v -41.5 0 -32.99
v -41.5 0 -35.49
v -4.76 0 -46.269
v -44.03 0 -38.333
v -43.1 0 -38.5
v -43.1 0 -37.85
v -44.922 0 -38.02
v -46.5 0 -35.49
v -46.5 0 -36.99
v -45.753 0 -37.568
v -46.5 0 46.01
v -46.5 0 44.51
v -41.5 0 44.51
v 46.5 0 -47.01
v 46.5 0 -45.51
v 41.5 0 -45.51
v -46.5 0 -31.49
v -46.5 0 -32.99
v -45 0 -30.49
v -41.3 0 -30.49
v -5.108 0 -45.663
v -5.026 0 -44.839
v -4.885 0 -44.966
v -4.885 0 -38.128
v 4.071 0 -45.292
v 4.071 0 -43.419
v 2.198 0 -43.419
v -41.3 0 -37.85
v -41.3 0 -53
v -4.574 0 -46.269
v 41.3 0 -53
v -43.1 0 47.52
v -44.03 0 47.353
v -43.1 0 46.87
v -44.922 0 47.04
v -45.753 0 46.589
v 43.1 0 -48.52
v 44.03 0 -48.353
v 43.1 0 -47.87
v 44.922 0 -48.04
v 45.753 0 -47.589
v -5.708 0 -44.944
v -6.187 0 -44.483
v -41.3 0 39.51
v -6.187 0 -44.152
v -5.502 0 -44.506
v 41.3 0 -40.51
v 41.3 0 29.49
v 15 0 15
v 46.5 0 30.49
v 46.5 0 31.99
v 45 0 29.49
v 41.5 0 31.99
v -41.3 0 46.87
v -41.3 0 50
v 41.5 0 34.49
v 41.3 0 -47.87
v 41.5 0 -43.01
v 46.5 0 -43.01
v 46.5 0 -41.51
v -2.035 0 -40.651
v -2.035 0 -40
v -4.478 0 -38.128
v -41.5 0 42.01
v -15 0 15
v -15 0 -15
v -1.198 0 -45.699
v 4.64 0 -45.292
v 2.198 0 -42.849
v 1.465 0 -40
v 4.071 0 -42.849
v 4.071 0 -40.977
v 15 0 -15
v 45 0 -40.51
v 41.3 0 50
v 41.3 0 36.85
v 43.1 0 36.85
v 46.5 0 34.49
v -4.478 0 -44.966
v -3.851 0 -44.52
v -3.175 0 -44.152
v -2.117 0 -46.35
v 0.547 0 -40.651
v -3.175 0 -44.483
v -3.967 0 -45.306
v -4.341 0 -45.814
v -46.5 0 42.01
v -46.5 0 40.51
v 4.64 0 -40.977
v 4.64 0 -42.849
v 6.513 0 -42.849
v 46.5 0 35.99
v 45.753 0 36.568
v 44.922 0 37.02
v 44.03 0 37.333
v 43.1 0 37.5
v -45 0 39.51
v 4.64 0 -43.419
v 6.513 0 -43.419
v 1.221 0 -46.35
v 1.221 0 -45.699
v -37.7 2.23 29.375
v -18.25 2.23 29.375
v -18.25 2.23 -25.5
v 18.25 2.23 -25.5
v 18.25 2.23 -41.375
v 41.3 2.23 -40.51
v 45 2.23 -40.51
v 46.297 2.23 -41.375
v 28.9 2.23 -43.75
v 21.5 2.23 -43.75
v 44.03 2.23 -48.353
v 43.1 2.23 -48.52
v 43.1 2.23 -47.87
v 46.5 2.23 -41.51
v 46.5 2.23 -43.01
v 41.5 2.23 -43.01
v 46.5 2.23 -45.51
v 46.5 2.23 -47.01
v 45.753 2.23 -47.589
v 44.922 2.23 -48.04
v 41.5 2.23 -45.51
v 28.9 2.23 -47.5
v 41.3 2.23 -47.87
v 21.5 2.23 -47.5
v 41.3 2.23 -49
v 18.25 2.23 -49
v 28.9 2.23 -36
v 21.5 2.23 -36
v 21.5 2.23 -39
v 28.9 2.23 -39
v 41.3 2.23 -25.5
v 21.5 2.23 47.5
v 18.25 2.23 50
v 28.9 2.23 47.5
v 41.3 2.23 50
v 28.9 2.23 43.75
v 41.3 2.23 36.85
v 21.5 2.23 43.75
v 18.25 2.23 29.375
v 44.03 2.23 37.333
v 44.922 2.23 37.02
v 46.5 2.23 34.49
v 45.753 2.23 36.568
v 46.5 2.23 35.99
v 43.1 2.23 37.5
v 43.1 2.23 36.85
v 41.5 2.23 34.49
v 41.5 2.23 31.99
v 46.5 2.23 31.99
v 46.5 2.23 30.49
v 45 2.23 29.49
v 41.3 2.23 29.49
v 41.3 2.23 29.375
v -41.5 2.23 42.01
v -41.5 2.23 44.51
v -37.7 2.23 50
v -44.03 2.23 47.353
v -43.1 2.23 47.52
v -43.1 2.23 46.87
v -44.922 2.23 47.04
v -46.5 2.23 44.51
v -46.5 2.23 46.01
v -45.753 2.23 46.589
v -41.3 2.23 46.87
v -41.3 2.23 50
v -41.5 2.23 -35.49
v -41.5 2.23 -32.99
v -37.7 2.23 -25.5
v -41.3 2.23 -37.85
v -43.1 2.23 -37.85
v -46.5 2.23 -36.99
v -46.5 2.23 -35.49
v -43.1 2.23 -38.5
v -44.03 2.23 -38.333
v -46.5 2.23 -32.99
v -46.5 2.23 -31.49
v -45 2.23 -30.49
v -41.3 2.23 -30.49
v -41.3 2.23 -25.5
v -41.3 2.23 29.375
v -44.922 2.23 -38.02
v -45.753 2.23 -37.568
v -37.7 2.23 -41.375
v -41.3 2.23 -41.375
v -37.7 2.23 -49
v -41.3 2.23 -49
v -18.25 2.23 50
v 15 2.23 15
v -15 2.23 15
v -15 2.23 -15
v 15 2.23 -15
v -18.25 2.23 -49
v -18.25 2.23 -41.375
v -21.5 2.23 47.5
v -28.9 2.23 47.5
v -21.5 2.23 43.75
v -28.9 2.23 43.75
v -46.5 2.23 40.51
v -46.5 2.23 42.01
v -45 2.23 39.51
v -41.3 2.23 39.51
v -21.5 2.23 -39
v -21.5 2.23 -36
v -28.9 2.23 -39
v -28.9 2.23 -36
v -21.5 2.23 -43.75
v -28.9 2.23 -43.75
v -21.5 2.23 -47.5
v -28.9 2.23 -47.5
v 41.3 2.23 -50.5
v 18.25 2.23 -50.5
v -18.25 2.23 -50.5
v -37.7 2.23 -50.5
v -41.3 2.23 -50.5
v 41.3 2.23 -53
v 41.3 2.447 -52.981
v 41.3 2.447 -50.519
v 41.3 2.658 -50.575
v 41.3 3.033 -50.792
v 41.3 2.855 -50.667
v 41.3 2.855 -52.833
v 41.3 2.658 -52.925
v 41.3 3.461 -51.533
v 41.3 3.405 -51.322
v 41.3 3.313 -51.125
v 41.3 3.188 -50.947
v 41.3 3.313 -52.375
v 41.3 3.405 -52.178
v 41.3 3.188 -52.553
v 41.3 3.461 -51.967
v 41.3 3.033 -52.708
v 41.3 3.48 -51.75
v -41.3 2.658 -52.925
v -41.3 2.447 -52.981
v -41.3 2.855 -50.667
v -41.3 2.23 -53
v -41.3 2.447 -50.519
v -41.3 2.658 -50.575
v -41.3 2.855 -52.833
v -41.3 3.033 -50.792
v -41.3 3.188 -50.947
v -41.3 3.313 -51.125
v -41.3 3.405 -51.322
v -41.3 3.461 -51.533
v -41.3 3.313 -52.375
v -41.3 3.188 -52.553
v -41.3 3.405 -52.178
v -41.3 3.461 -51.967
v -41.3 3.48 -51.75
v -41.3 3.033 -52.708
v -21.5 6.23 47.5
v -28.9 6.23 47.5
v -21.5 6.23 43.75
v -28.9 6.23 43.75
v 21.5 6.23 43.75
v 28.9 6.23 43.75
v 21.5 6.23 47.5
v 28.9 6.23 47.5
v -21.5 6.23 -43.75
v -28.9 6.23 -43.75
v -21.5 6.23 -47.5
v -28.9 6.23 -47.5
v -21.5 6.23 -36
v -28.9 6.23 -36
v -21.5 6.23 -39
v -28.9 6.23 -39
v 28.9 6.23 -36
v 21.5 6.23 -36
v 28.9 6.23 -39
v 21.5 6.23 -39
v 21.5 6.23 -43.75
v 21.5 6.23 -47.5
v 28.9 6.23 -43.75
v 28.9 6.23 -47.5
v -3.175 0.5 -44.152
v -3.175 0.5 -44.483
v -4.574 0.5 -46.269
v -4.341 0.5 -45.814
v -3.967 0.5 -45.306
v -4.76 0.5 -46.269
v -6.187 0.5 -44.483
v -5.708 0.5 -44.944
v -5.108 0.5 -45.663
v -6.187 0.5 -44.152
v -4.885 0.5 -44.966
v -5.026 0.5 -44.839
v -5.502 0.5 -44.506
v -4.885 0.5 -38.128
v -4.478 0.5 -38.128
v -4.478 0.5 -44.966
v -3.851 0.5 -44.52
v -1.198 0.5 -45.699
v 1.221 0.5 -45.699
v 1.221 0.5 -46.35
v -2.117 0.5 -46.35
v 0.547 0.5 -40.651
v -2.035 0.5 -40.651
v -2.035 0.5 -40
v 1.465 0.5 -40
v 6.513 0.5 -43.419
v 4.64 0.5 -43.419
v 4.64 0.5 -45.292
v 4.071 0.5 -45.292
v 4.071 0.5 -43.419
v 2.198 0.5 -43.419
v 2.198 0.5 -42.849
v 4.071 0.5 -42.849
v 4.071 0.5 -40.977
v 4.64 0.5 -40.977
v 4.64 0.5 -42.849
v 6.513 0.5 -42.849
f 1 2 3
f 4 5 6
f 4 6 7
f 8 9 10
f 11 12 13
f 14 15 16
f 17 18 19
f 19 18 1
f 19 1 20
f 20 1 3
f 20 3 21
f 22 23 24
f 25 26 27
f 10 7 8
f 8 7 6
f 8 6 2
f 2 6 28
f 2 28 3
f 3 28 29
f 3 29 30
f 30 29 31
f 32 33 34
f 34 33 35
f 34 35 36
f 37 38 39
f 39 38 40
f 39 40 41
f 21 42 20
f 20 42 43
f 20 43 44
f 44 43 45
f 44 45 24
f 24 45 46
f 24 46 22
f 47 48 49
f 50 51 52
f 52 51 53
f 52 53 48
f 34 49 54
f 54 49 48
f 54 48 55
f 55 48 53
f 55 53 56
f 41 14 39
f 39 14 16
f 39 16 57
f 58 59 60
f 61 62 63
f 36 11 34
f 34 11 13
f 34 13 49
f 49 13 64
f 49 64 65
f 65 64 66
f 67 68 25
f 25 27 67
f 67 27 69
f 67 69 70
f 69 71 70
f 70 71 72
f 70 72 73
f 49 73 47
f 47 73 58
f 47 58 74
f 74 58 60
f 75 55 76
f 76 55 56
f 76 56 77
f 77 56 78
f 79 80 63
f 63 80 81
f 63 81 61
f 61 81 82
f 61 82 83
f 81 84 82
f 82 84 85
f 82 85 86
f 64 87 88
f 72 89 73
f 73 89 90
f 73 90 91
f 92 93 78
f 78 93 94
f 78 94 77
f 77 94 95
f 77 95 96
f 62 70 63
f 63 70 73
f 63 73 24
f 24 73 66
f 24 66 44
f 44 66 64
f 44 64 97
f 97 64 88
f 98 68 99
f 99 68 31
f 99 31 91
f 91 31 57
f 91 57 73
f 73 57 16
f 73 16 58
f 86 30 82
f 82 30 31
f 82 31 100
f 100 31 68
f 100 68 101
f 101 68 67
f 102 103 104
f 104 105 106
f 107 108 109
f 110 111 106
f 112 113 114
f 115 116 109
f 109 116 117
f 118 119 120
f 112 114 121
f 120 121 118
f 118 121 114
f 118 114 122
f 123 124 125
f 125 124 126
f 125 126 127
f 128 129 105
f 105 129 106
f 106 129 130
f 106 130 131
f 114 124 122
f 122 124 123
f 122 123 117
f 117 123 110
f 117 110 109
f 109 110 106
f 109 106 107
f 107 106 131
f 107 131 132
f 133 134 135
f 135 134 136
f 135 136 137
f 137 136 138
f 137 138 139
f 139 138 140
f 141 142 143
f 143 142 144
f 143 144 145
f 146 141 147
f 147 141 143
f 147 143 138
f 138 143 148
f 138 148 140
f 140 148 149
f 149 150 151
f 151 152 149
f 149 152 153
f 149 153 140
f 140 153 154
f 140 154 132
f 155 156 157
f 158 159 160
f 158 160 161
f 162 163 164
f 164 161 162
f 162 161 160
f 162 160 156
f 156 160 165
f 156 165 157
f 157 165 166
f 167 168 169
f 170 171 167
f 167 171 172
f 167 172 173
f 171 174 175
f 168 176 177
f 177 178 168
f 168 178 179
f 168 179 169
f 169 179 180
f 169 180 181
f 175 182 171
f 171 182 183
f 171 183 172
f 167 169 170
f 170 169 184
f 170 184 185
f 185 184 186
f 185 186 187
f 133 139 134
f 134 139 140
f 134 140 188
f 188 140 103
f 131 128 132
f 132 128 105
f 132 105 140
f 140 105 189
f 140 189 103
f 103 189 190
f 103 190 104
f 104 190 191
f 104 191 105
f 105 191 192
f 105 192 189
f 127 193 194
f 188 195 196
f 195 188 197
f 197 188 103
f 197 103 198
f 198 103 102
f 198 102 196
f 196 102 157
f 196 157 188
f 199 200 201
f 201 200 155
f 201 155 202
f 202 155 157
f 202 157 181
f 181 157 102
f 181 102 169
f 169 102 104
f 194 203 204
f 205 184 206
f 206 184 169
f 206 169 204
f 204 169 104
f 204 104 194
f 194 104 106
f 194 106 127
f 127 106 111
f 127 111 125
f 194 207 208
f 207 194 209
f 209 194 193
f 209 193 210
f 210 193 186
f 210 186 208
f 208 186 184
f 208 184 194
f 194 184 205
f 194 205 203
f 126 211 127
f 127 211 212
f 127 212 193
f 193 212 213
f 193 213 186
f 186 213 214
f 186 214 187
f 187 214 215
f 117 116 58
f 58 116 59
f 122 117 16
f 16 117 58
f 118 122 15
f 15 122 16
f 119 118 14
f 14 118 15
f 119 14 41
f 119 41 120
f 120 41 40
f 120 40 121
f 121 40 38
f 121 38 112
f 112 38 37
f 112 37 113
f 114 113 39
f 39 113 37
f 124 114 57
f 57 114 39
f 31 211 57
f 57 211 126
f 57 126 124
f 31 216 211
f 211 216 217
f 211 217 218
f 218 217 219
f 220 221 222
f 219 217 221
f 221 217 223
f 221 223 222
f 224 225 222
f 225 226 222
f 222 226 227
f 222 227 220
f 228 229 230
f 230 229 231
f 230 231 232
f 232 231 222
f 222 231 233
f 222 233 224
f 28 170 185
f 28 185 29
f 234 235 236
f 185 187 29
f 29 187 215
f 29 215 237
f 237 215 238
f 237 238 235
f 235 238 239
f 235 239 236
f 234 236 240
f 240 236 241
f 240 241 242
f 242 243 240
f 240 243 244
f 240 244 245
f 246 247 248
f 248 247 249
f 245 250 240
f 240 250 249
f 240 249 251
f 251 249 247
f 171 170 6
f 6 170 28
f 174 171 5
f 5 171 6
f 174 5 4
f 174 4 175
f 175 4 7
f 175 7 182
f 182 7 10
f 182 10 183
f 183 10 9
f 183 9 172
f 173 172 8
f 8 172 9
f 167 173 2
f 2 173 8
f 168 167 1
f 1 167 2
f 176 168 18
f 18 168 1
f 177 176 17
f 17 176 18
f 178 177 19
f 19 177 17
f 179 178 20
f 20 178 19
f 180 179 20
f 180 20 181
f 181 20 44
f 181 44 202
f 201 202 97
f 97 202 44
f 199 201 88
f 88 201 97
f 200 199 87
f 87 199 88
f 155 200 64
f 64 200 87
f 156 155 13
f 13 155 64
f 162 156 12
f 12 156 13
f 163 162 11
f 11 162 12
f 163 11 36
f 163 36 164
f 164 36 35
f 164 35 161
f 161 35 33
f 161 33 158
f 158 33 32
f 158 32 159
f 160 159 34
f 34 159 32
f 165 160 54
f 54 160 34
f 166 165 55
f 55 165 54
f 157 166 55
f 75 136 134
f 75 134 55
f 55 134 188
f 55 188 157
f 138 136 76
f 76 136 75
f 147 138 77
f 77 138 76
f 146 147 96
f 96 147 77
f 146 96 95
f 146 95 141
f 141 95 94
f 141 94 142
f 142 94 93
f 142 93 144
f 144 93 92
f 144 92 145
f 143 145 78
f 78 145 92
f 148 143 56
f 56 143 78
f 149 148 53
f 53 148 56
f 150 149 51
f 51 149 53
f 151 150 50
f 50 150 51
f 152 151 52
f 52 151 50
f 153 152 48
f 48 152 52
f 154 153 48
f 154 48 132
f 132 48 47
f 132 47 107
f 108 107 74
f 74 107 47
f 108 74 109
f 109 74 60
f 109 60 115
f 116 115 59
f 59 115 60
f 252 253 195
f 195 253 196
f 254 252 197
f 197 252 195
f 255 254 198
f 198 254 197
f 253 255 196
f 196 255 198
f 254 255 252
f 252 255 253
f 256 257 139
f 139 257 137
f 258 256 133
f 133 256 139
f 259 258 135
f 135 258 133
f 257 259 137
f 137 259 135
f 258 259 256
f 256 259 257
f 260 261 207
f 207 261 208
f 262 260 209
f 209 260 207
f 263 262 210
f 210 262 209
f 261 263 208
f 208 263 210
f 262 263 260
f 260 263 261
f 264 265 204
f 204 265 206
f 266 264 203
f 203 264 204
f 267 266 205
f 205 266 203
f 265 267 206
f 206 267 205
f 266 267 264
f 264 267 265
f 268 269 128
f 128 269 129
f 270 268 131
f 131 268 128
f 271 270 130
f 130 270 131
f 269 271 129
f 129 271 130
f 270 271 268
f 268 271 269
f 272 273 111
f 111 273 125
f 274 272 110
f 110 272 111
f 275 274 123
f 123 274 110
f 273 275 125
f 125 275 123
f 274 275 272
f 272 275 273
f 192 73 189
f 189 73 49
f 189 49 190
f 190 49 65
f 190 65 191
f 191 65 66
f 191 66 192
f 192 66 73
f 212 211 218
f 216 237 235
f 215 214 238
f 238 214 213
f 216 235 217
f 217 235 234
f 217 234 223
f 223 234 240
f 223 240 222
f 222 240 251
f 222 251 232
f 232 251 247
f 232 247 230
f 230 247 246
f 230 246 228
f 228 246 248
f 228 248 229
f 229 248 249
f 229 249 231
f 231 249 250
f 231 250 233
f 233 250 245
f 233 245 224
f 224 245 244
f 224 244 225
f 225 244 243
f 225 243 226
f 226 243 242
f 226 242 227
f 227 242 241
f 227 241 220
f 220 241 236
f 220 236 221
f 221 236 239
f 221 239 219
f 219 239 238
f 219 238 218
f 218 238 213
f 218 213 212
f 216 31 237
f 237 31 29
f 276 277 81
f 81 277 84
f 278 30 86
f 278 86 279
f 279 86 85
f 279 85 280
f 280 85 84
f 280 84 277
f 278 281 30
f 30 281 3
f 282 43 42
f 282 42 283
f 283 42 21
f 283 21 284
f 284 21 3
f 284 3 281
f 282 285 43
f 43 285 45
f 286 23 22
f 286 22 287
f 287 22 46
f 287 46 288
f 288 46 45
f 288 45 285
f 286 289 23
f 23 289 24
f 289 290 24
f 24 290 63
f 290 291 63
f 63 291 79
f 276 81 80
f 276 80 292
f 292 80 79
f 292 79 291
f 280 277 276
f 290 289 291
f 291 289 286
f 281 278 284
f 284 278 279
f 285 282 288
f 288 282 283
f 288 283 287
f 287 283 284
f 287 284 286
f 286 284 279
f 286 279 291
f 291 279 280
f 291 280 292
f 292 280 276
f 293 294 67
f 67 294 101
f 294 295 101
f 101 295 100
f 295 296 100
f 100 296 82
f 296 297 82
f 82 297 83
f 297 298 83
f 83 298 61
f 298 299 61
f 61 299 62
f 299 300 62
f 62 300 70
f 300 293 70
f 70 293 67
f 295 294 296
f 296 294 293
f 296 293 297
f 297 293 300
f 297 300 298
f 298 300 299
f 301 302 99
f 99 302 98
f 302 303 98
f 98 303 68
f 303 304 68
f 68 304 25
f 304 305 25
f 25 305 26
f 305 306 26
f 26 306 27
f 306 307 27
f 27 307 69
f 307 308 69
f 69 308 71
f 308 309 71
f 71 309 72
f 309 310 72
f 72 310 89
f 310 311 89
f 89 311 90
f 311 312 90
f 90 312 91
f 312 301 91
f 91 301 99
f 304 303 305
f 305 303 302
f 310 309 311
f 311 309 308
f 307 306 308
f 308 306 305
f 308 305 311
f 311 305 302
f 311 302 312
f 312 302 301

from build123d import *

# Parameters (mm, degrees)
SKETCH1_W           = 0.2
SKETCH1_H           = 2.5
SKETCH1_W_2         = 82.6
SKETCH1_H_2         = 100
BOSS_EXTRUDE1_DEPTH = 2.23
SKETCH2_W           = 7.4
SKETCH2_H           = 3.75
SKETCH2_H_2         = 3
BOSS_EXTRUDE2_DEPTH = 4
SKETCH3_W           = 30
SKETCH3_H           = 30
CUT_EXTRUDE1_DEPTH  = 10
BOSS_EXTRUDE3_START = -82.6
SKETCH4_W           = 3
SKETCH4_H           = 2.23
BOSS_EXTRUDE3_DEPTH = 82.6
CUT_EXTRUDE2_DEPTH  = 0.5


with BuildPart() as part:
    # Sketch1 → Boss-Extrude1 (new body)
    with BuildSketch(Plane(origin=(0, 0, 0), x_dir=(1, 0, 0), z_dir=(0, 1, 0))):
        with BuildLine():
            Line((43.1, -36.85), (43.1, -37.5))
            ThreePointArc((43.1, -37.5), (44.922195524, -37.020142239), (46.5, -35.99))
            Line((46.5, -35.99), (46.5, -34.49))
            Line((46.5, -34.49), (43.1, -34.49))
            Line((43.1, -34.49), (43.1, -36.85))
        make_face()
        Polygon((41.5, -34.49), (41.3, -34.49), (41.3, -36.85), (43.1, -36.85), (43.1, -34.49), align=None)
        Polygon((45, -29.49), (41.3, -29.49), (41.3, -31.99), (41.5, -31.99), (46.5, -31.99), (46.5, -30.49), align=None)
        with Locations((41.4, -33.24)):
            Rectangle(SKETCH1_W, SKETCH1_H)
        Rectangle(SKETCH1_W_2, SKETCH1_H_2)
        Polygon((46.5, 43.01), (41.5, 43.01), (41.3, 43.01), (41.3, 40.51), (45, 40.51), (46.5, 41.51), align=None)
        with Locations((41.4, 44.26)):
            Rectangle(SKETCH1_W, SKETCH1_H)
        Polygon((41.5, 45.51), (43.1, 45.51), (43.1, 47.87), (41.3, 47.87), (41.3, 45.51), align=None)
        with BuildLine():
            ThreePointArc((43.1, 48.52), (44.922195524, 48.040142239), (46.5, 47.01))
            Line((46.5, 47.01), (46.5, 45.51))
            Line((46.5, 45.51), (43.1, 45.51))
            Line((43.1, 45.51), (43.1, 47.87))
            Line((43.1, 47.87), (43.1, 48.52))
        make_face()
        with BuildLine():
            Line((-43.1, -46.87), (-41.3, -46.87))
            Line((-41.3, -46.87), (-41.3, -44.51))
            Line((-41.3, -44.51), (-41.5, -44.51))
            Line((-41.5, -44.51), (-46.5, -44.51))
            Line((-46.5, -44.51), (-46.5, -46.01))
            ThreePointArc((-46.5, -46.01), (-44.922195524, -47.040142239), (-43.1, -47.52))
            Line((-43.1, -47.52), (-43.1, -46.87))
        make_face()
        Polygon((-41.3, -44.51), (-41.3, -39.51), (-45, -39.51), (-46.5, -40.51), (-46.5, -42.01), (-41.5, -42.01), (-41.5, -44.51), align=None)
        Polygon((-41.3, 30.49), (-41.3, 35.49), (-41.5, 35.49), (-41.5, 32.99), (-46.5, 32.99), (-46.5, 31.49), (-45, 30.49), align=None)
        with BuildLine():
            Line((-41.3, 35.49), (-41.3, 37.85))
            Line((-41.3, 37.85), (-43.1, 37.85))
            Line((-43.1, 37.85), (-43.1, 38.5))
            ThreePointArc((-43.1, 38.5), (-44.922195524, 38.020142239), (-46.5, 36.99))
            Line((-46.5, 36.99), (-46.5, 35.49))
            Line((-46.5, 35.49), (-41.5, 35.49))
            Line((-41.5, 35.49), (-41.3, 35.49))
        make_face()
    extrude(amount=BOSS_EXTRUDE1_DEPTH)

    # Sketch2 → Boss-Extrude2 (add)
    with BuildSketch(Plane(origin=(0, 2.23, 0), x_dir=(1, 0, 0), z_dir=(0, 1, 0))):
        with Locations((-25.2, -45.625)):
            Rectangle(SKETCH2_W, SKETCH2_H)
        with Locations((25.2, -45.625)):
            Rectangle(SKETCH2_W, SKETCH2_H)
        with Locations((25.2, 45.625)):
            Rectangle(SKETCH2_W, SKETCH2_H)
        with Locations((-25.2, 45.625)):
            Rectangle(SKETCH2_W, SKETCH2_H)
        with Locations((-25.2, 37.5)):
            Rectangle(SKETCH2_W, SKETCH2_H_2)
        with Locations((25.2, 37.5)):
            Rectangle(SKETCH2_W, SKETCH2_H_2)
    extrude(amount=BOSS_EXTRUDE2_DEPTH)

    # Sketch3 → Cut-Extrude1 (cut)
    with BuildSketch(Plane(origin=(0, 2.23, 0), x_dir=(1, 0, 0), z_dir=(0, 1, 0))):
        Rectangle(SKETCH3_W, SKETCH3_H)
    extrude(amount=-CUT_EXTRUDE1_DEPTH, mode=Mode.SUBTRACT)

    # Sketch4 → Boss-Extrude3 (add)
    with BuildSketch(Plane.ZY.offset(41.3).offset(BOSS_EXTRUDE3_START)):
        with BuildLine():
            ThreePointArc((-50.5, 2.23), (-51.75, 3.48), (-53, 2.23))
            Line((-53, 2.23), (-50.5, 2.23))
        make_face()
        with Locations((-51.5, 1.115)):
            Rectangle(SKETCH4_W, SKETCH4_H)
    extrude(amount=BOSS_EXTRUDE3_DEPTH)

    # Sketch5 → Cut-Extrude2 (cut)
    with BuildSketch(Plane.XZ):
        Polygon((4.640384615, -43.419230769), (4.640384615, -45.291666667), (4.070512821, -45.291666667), (4.070512821, -43.419230769), (2.198076923, -43.419230769), (2.198076923, -42.849358974), (4.070512821, -42.849358974), (4.070512821, -40.976923077), (4.640384615, -40.976923077), (4.640384615, -42.849358974), (6.512820513, -42.849358974), (6.512820513, -43.419230769), align=None)
        Polygon((1.221153846, -45.698717949), (1.221153846, -46.35), (-2.116666667, -46.35), (0.54697516, -40.651282051), (-2.03525641, -40.651282051), (-2.03525641, -40), (1.465384615, -40), (-1.198257212, -45.698717949), align=None)
        with BuildLine():
            add(Edge.make_bspline(
                [(-3.175, -44.482652244), (-3.262918211, -44.565594294), (-3.433284709, -44.726318068), (-3.671176807, -44.969181062), (-3.884395029, -45.204215059), (-4.071386431, -45.432230465), (-4.235563138, -45.650653984), (-4.373446797, -45.862117777), (-4.487450991, -46.065713922), (-4.546079998, -46.202765549), (-4.574238782, -46.268589744)],
                knots=[0, 0, 0, 0, 0.000362575, 0.000702591, 0.001019617, 0.001314251, 0.001586978, 0.001838892, 0.00207117, 0.002285828, 0.002285828, 0.002285828, 0.002285828], degree=3))
            Line((-4.574238782, -46.268589744), (-4.759955929, -46.268589744))
            add(Edge.make_bspline(
                [(-4.759955929, -46.268589744), (-4.792788221, -46.198486652), (-4.860615985, -46.053661673), (-4.986779978, -45.841364869), (-5.132525091, -45.623706079), (-5.300867212, -45.402881295), (-5.491310702, -45.177687257), (-5.702118152, -44.94759275), (-5.93585869, -44.714525691), (-6.101847246, -44.561381426), (-6.187179487, -44.482652244)],
                knots=[0, 0, 0, 0, 0.000232111, 0.000479514, 0.000739881, 0.001017698, 0.001312003, 0.001624408, 0.001953613, 0.002301902, 0.002301902, 0.002301902, 0.002301902], degree=3))
            Line((-6.187179487, -44.482652244), (-6.187179487, -44.151923077))
            add(Edge.make_bspline(
                [(-6.187179487, -44.151923077), (-6.116537815, -44.184471117), (-5.978890638, -44.247891839), (-5.781903944, -44.34935602), (-5.597143614, -44.448436612), (-5.427913951, -44.551377879), (-5.270864773, -44.651733434), (-5.129759329, -44.755968393), (-5.000056754, -44.857829341), (-4.922299946, -44.930706152), (-4.884615385, -44.966025641)],
                knots=[0, 0, 0, 0, 0.000233307, 0.000454604, 0.000664648, 0.000862076, 0.001048719, 0.001223511, 0.001388199, 0.001543075, 0.001543075, 0.001543075, 0.001543075], degree=3))
            Line((-4.884615385, -44.966025641), (-4.884615385, -38.127564103))
            Line((-4.884615385, -38.127564103), (-4.477564103, -38.127564103))
            Line((-4.477564103, -38.127564103), (-4.477564103, -44.966025641))
            add(Edge.make_bspline(
                [(-4.477564103, -44.966025641), (-4.378031962, -44.888388472), (-4.177950241, -44.732320508), (-3.858882125, -44.521130617), (-3.525108924, -44.32477265), (-3.292360048, -44.209864), (-3.175, -44.151923077)],
                knots=[0, 0, 0, 0, 0.000378565, 0.000760999, 0.001146938, 0.001539469, 0.001539469, 0.001539469, 0.001539469], degree=3))
            Line((-3.175, -44.151923077), (-3.175, -44.482652244))
        make_face()
    extrude(amount=-CUT_EXTRUDE2_DEPTH, mode=Mode.SUBTRACT)


solid = part.part
